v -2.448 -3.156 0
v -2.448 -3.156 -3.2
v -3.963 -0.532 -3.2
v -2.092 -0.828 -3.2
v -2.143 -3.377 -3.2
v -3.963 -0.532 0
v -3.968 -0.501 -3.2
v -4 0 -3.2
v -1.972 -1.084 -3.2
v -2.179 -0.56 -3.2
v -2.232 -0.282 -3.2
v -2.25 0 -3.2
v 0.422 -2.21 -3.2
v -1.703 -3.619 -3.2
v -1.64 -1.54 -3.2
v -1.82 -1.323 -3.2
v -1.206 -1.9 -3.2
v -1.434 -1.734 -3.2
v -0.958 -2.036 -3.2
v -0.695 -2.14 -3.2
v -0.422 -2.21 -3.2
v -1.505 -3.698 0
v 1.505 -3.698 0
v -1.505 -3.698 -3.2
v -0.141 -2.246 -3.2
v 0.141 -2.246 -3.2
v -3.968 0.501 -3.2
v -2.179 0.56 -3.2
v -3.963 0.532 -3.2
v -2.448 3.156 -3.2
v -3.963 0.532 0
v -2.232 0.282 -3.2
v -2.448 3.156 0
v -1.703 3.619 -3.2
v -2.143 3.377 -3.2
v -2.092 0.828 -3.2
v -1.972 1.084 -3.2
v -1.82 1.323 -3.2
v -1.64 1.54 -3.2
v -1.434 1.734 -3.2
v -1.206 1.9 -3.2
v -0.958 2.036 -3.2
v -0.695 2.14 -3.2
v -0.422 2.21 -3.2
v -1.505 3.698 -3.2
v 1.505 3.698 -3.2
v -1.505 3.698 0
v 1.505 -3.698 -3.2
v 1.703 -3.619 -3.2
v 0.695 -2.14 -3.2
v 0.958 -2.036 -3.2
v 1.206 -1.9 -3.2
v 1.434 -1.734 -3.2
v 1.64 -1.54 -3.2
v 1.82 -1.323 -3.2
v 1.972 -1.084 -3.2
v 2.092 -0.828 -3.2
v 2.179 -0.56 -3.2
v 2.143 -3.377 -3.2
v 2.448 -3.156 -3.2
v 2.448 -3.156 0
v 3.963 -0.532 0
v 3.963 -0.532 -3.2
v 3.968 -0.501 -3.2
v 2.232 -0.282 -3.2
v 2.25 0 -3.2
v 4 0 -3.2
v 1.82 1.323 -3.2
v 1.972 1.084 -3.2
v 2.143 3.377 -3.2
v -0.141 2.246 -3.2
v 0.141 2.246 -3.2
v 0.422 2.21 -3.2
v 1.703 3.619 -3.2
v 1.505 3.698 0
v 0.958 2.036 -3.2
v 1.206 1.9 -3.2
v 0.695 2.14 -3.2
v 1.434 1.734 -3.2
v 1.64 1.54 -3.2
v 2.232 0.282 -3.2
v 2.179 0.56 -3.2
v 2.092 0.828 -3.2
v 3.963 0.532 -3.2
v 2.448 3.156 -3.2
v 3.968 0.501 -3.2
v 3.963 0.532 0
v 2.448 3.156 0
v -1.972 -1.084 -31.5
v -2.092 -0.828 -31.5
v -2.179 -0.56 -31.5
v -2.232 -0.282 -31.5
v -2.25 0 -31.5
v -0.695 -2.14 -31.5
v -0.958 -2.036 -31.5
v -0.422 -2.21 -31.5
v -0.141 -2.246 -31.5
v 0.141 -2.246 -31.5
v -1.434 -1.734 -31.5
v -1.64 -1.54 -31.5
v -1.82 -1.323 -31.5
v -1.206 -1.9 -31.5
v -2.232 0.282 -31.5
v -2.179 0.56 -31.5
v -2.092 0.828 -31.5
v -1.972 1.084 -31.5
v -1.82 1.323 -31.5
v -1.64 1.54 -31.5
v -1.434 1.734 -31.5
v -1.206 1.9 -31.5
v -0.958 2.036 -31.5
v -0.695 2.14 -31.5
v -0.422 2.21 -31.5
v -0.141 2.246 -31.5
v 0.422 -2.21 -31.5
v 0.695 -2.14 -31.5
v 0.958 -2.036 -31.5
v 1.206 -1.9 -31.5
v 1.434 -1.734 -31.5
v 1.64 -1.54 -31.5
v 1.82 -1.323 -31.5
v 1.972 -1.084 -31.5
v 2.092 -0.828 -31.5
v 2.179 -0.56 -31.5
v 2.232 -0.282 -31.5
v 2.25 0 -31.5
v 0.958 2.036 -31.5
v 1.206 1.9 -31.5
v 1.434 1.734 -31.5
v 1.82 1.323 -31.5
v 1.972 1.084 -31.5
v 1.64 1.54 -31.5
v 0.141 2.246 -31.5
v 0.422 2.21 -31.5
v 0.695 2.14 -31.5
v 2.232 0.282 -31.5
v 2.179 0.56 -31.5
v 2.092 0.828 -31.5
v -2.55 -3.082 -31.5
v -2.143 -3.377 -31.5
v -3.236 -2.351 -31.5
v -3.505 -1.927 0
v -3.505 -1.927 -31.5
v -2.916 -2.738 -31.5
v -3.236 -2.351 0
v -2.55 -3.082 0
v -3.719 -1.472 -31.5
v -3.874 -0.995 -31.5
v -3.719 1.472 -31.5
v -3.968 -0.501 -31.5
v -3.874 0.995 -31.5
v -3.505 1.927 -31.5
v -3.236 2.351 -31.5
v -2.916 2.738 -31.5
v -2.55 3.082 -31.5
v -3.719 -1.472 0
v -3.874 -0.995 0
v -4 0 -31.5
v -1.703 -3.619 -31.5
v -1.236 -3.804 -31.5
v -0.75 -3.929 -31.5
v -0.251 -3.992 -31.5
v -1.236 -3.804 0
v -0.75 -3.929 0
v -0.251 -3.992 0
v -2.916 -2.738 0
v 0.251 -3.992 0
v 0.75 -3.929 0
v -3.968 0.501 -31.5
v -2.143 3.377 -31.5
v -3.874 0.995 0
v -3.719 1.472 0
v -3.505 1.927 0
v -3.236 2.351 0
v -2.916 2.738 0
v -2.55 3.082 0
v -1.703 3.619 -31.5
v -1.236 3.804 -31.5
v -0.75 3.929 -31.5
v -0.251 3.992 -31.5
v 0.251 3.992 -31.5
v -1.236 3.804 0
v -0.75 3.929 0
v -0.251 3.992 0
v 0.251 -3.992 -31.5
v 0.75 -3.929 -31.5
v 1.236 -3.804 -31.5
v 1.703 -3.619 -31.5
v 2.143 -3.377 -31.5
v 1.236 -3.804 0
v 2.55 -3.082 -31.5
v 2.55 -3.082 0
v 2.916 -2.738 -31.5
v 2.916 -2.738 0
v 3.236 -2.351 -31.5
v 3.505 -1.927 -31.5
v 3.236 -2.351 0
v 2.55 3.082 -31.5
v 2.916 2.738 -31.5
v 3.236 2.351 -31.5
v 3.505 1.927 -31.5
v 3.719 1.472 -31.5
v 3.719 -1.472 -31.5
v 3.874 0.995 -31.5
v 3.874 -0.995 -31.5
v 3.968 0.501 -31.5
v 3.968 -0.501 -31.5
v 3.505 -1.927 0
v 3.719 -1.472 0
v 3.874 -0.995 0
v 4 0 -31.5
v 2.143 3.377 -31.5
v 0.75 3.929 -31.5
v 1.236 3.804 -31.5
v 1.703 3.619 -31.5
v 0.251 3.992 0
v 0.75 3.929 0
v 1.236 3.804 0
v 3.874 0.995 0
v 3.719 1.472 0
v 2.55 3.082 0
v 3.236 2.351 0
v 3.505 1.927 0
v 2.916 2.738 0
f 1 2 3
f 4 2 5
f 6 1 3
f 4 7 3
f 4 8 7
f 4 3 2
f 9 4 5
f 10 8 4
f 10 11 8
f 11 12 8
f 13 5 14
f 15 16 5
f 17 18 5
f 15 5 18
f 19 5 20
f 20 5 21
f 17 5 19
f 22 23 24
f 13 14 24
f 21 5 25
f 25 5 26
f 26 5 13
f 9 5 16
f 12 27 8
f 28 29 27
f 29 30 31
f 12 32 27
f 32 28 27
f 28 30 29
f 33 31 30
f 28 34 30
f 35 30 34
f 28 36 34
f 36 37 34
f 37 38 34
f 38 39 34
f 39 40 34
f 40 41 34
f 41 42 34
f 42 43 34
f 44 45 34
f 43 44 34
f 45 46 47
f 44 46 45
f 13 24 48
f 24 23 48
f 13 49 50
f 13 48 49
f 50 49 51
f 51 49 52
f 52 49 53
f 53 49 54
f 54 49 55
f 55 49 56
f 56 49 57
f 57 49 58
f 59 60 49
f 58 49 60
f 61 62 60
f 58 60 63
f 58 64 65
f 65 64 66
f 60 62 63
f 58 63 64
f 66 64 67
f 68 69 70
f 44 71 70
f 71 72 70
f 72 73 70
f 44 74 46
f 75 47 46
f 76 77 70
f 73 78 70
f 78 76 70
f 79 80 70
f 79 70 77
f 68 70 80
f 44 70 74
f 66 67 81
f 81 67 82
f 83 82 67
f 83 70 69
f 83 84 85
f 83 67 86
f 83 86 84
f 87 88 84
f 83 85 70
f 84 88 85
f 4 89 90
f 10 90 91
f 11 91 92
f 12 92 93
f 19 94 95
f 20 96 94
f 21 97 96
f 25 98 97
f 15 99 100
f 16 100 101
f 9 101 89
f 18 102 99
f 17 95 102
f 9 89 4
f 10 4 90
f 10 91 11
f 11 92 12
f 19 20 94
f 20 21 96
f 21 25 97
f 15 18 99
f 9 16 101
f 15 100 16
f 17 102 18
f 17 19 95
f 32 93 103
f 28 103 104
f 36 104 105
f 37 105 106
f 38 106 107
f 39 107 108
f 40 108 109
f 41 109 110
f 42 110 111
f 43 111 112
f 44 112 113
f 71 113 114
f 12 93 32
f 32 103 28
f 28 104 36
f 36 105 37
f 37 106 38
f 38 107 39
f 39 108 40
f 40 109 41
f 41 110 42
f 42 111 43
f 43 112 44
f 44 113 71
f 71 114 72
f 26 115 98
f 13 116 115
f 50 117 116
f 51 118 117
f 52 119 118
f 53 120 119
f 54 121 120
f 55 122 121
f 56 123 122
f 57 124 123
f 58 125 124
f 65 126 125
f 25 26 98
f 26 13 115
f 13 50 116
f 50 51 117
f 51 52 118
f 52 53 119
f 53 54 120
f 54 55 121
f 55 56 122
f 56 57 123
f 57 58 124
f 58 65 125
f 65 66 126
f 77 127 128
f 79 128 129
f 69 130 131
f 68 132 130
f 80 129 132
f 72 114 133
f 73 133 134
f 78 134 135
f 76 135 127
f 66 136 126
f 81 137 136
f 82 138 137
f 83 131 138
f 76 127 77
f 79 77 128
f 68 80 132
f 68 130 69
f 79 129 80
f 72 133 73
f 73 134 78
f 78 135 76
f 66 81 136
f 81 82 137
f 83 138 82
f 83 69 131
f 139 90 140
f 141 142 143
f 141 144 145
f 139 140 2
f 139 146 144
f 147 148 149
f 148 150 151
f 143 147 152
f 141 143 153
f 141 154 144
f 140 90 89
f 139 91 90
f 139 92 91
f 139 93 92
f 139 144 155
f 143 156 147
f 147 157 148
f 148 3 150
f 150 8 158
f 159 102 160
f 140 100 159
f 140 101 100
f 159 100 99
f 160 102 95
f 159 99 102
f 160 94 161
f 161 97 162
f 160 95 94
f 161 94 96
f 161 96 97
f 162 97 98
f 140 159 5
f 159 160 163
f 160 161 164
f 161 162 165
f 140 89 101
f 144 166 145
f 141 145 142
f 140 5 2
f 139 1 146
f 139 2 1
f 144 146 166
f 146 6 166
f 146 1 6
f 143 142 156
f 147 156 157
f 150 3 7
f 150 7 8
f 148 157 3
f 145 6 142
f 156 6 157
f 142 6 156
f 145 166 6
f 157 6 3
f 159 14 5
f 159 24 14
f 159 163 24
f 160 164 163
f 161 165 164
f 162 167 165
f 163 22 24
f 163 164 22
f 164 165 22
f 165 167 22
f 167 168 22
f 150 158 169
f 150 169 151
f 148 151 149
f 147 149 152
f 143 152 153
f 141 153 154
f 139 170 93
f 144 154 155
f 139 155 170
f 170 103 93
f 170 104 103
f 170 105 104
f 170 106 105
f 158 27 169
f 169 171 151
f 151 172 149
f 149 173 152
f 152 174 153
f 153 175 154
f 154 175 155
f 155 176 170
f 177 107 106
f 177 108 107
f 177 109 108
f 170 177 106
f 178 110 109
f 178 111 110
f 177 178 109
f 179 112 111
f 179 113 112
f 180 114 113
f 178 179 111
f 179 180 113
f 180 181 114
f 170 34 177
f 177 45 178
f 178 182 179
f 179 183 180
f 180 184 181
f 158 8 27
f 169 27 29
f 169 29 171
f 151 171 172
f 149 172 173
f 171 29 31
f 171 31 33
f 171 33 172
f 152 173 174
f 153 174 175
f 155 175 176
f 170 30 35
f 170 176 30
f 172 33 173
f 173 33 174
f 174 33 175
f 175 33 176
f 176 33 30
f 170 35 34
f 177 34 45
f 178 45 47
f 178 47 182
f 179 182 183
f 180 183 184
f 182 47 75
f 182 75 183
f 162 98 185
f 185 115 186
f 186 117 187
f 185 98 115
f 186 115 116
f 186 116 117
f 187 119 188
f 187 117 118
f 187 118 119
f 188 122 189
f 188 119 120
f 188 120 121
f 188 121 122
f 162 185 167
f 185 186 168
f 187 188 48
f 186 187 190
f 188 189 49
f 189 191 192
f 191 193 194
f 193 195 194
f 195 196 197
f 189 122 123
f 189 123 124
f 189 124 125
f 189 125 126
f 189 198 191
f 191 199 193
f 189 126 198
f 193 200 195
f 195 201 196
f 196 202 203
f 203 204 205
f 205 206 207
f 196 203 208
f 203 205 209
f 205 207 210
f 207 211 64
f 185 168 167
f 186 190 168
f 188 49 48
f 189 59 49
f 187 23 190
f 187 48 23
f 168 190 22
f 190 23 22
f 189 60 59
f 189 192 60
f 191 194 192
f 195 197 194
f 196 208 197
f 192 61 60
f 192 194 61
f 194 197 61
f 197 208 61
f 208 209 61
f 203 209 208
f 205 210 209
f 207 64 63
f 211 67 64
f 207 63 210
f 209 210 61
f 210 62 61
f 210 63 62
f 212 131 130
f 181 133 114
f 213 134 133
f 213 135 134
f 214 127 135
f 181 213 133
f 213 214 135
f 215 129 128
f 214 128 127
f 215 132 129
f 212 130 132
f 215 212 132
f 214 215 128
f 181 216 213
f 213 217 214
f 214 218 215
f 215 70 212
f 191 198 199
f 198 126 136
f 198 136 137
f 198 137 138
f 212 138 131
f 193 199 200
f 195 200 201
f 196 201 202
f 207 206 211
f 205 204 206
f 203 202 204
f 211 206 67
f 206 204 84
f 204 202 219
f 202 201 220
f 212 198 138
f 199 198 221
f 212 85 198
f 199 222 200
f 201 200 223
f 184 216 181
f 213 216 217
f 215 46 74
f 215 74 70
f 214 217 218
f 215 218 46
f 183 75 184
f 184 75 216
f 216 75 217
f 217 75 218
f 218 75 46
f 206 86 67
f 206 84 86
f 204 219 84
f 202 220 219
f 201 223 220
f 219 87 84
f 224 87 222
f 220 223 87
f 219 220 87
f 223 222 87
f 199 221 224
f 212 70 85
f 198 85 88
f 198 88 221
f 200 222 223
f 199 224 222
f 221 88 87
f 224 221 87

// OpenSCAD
$fn = 50;

difference() {
	union() {
		translate(v = [0, 0, -31.5]) {
			cylinder(h = 34.5, r = 4.0);
		}
	}
	union() {
		translate(v = [0, 0, 0]) {
			rotate(a = [0, 0, 0]) {
				difference() {
					union() {
						translate(v = [0, 0, -3.2]) {
							linear_extrude(height = 3.2) {
								polygon(points = [[4.2698, 0.0], [2.1349000000000005, 3.697755269078796], [-2.134899999999999, 3.6977552690787965], [-4.2698, 5.228996902999369e-16], [-2.134900000000002, -3.6977552690787956], [2.1348999999999974, -3.697755269078798]]);
							}
						}
					}
					union();
				}
			}
		}
		#cylinder(h = 3, r = 5.0);
		#translate(v = [0, 0, -100.0]) {
			cylinder(h = 200, r = 2.25);
		}
	}
}
